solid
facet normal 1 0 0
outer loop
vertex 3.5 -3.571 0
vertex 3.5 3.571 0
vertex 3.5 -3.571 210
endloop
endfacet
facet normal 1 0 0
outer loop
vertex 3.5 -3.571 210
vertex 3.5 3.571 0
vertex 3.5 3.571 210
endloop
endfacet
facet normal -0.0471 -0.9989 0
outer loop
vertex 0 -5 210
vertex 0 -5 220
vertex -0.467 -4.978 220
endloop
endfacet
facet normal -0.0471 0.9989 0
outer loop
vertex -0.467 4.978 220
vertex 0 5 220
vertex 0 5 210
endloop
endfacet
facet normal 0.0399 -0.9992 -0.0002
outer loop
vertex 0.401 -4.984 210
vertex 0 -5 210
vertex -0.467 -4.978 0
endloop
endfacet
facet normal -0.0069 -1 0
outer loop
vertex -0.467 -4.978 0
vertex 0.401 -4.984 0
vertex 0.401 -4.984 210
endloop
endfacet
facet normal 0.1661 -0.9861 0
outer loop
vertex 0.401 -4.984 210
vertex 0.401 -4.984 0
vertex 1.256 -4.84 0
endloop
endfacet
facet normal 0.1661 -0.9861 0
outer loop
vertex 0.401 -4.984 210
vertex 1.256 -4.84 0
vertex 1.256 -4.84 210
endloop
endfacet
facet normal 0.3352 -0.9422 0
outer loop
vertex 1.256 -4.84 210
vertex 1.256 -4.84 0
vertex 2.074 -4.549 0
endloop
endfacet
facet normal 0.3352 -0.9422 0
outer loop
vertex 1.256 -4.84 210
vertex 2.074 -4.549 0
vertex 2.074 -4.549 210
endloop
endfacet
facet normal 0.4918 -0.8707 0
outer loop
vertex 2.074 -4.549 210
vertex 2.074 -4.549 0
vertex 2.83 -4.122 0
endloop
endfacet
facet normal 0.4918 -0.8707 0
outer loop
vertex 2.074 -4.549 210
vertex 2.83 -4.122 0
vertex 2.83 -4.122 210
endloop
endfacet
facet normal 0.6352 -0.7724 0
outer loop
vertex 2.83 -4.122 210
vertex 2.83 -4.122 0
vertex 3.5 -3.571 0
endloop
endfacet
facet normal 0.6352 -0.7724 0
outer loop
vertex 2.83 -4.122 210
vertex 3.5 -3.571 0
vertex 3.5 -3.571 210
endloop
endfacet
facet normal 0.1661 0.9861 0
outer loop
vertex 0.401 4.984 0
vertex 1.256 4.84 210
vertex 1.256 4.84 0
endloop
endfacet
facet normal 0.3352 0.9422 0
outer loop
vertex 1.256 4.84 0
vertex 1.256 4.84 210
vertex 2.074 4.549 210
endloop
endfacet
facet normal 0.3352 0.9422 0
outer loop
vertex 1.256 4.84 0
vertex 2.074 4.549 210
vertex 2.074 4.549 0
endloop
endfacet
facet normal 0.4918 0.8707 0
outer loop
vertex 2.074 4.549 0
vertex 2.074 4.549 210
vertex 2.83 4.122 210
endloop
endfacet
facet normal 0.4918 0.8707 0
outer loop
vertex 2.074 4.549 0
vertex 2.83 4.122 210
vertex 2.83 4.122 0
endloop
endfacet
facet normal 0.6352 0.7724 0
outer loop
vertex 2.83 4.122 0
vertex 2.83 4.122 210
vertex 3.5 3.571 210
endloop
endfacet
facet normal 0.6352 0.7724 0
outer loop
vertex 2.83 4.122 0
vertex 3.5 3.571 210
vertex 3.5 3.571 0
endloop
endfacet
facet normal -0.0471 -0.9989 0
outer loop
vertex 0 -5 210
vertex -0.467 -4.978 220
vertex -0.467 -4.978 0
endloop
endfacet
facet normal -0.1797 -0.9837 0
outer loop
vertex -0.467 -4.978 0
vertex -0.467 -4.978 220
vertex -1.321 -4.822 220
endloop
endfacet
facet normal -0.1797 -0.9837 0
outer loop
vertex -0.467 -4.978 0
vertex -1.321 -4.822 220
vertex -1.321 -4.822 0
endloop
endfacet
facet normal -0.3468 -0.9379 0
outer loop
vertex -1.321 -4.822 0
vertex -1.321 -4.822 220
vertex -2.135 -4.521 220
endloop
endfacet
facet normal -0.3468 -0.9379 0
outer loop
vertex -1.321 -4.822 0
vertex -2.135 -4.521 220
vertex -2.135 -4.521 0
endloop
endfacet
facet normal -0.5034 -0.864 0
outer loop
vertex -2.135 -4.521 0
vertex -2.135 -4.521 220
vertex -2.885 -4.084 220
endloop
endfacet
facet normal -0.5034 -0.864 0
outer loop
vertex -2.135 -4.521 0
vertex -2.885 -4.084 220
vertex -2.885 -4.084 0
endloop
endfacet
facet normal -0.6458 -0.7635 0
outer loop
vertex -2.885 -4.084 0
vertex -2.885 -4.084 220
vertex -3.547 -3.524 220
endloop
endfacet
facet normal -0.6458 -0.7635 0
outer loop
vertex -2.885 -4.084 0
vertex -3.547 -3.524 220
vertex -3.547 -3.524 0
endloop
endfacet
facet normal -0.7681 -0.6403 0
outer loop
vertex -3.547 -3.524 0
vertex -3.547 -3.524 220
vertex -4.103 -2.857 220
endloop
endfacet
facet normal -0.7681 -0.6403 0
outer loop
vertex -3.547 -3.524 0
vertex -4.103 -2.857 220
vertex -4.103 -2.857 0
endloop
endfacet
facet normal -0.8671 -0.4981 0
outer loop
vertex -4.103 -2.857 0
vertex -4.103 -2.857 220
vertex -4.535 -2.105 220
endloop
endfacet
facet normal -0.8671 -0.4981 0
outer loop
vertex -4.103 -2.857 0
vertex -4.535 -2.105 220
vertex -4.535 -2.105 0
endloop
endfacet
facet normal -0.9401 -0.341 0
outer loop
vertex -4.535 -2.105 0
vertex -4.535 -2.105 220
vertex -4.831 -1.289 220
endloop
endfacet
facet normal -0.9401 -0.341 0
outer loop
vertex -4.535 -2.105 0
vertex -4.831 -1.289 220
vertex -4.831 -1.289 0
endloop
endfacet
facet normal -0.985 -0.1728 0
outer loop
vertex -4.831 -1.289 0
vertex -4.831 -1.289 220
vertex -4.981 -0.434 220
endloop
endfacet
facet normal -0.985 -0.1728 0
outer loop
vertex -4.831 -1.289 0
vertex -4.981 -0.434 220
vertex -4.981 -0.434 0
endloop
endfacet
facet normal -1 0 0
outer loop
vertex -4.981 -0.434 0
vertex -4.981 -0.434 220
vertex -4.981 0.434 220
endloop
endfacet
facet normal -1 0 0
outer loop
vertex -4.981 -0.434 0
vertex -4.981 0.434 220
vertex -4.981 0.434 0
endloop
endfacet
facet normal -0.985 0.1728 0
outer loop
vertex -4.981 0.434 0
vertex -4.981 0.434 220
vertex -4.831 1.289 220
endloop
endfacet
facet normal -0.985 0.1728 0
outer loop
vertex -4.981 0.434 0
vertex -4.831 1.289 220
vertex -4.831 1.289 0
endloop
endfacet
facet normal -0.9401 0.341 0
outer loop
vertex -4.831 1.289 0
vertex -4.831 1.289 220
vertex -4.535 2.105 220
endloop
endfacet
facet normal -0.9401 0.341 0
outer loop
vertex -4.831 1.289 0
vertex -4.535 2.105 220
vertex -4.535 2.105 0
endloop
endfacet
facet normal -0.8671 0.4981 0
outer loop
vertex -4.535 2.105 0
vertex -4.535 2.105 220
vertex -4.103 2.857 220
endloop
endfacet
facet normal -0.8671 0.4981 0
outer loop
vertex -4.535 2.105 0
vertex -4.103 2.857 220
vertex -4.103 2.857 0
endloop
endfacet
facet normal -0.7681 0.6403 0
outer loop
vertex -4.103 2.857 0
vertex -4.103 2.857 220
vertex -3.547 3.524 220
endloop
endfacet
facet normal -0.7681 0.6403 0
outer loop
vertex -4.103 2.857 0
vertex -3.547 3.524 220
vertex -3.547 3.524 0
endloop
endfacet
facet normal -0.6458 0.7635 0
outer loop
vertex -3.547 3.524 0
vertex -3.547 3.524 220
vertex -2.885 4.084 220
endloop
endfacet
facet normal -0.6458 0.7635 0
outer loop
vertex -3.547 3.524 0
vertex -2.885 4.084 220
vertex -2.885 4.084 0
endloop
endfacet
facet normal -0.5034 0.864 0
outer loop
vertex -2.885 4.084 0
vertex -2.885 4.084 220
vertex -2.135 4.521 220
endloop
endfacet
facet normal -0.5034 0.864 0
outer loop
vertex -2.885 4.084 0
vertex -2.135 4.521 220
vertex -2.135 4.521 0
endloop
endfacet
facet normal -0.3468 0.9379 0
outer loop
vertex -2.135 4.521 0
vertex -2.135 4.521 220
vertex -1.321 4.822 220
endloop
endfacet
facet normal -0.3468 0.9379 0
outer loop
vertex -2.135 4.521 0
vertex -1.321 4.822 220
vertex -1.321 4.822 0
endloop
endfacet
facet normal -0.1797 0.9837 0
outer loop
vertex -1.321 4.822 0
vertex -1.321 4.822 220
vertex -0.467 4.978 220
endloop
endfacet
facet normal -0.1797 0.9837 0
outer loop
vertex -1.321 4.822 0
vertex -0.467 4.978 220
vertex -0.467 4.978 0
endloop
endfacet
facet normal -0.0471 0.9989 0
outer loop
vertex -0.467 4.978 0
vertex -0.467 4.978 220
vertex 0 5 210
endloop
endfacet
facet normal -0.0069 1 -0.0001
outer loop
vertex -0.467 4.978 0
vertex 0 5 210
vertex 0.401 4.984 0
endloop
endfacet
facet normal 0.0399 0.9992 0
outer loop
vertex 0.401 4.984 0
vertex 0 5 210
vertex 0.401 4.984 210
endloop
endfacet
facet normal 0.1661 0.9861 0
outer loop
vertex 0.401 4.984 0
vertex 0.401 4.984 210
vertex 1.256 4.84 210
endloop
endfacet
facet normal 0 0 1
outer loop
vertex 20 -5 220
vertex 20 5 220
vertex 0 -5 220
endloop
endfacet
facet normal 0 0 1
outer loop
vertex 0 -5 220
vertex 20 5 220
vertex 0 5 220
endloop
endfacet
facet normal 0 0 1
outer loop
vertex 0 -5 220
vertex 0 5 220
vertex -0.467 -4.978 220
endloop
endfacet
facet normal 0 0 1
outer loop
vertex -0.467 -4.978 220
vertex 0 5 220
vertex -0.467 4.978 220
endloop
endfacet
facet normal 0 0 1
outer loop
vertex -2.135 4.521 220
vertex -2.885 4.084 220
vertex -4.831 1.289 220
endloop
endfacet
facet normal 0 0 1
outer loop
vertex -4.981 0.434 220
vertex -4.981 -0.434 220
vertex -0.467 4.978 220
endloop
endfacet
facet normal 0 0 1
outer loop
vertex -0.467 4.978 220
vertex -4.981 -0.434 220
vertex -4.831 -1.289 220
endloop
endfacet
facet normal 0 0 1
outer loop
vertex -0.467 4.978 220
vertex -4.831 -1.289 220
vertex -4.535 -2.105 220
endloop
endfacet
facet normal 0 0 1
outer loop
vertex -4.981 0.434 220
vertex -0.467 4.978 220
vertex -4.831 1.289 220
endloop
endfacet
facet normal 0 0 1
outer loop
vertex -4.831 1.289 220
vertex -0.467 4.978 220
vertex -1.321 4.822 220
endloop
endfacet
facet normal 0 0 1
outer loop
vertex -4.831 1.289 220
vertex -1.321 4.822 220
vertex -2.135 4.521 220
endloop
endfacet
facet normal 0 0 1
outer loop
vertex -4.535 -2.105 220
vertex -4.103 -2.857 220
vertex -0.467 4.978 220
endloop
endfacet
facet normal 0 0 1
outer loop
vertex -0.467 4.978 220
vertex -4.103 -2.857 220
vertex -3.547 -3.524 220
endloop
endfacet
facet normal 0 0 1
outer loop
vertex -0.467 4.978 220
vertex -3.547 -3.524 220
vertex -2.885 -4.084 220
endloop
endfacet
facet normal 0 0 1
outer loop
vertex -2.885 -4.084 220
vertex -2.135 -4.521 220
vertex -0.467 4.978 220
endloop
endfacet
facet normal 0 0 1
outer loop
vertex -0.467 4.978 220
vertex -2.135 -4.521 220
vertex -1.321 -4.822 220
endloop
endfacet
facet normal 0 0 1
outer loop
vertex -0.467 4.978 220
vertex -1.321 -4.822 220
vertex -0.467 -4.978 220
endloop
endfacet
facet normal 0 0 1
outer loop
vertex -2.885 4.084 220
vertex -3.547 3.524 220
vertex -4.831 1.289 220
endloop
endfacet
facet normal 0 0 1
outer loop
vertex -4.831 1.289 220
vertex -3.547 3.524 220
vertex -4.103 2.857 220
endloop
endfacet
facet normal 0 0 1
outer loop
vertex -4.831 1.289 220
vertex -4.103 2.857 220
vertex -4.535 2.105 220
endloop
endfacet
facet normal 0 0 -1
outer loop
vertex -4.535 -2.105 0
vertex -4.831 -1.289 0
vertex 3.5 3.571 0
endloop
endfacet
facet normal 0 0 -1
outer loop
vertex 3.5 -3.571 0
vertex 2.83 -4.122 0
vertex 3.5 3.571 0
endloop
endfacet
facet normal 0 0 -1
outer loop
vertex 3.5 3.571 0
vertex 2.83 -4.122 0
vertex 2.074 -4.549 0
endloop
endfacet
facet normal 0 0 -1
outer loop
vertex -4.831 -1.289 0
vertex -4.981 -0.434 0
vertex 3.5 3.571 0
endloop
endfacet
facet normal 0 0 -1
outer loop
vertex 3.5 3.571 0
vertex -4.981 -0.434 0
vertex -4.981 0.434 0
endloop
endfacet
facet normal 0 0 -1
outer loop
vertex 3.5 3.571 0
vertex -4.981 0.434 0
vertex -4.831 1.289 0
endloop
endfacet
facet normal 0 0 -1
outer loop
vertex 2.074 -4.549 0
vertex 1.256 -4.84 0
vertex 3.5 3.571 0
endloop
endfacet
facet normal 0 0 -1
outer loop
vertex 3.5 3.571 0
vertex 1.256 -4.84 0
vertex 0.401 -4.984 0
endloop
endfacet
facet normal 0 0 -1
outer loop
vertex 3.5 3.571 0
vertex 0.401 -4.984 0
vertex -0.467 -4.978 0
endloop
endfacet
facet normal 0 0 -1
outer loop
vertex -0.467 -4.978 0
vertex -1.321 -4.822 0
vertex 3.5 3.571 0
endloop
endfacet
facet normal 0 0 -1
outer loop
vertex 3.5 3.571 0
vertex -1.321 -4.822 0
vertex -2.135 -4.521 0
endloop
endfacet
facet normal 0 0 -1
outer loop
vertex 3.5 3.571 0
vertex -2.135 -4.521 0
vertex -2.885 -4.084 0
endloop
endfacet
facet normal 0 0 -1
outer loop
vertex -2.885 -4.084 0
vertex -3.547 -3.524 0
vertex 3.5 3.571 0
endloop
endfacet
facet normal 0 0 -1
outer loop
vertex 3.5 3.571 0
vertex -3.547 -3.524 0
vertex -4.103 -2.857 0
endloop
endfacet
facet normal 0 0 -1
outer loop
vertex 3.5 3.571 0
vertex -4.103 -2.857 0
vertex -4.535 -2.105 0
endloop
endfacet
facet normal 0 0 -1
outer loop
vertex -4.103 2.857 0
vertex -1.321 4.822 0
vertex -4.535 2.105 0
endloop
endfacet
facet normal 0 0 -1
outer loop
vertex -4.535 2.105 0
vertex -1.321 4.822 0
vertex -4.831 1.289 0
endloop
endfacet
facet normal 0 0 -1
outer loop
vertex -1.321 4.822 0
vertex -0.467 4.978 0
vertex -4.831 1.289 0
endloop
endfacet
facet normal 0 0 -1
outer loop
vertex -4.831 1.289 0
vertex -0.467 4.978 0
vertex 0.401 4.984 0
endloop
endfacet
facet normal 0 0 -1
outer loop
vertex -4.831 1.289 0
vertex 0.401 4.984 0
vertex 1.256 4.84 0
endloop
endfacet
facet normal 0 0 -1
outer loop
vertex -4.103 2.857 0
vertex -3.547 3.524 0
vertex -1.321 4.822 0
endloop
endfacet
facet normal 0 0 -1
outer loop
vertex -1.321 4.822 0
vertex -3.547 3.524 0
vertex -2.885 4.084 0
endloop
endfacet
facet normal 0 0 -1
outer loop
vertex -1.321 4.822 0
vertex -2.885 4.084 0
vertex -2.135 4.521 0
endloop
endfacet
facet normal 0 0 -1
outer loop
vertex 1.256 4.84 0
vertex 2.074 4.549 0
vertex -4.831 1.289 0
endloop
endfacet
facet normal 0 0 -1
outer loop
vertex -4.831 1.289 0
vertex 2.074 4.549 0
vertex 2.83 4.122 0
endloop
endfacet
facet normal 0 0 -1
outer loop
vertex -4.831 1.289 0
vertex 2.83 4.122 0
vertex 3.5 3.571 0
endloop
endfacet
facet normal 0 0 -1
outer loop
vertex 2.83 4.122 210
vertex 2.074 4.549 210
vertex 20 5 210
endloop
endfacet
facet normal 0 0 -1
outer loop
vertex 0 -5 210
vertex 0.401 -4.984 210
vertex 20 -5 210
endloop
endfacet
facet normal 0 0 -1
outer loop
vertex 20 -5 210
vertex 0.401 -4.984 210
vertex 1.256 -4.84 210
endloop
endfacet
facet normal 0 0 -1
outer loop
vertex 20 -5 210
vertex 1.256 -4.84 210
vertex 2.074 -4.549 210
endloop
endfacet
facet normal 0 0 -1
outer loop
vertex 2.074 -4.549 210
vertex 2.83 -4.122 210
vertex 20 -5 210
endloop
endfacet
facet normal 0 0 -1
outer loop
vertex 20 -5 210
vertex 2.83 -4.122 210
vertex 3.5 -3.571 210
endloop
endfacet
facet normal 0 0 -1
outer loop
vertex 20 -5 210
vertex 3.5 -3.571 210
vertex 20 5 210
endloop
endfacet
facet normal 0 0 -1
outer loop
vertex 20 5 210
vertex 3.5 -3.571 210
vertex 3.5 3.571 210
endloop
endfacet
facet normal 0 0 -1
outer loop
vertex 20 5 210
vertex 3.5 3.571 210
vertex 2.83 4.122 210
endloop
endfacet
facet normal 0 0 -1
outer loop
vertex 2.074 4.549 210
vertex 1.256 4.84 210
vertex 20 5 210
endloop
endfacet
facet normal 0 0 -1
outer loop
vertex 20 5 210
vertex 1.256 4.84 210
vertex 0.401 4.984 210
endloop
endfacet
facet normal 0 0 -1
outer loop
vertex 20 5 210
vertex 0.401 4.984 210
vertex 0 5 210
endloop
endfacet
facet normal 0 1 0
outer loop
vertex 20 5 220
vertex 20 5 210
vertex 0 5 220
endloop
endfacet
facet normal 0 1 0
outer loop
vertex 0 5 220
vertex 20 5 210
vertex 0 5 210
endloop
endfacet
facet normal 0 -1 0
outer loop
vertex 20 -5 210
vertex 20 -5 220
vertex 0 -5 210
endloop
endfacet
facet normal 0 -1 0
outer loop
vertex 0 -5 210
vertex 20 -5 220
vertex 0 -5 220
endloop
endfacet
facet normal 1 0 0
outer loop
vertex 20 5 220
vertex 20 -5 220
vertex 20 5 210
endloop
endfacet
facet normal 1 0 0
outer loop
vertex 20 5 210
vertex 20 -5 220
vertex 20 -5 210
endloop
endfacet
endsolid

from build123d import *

# Parameters (mm, degrees)
RESSALTO_EXTRUS_O1_DEPTH = 220
ESBO_O2_W                = 10
ESBO_O2_H                = 10
RESSALTO_EXTRUS_O2_DEPTH = 20


with BuildPart() as part:
    # Esboço1 → Ressalto-extrusão1 (new body)
    with BuildSketch(Plane.XY):
        with BuildLine():
            ThreePointArc((3.5, 3.570714214), (-5, 0), (3.5, -3.570714214))
            Line((3.5, -3.570714214), (3.5, 3.570714214))
        make_face()
    extrude(amount=RESSALTO_EXTRUS_O1_DEPTH)

    # Esboço2 → Ressalto-extrusão2 (add)
    with BuildSketch(Plane(origin=(0, 0, 0), x_dir=(0, 0, -1), z_dir=(1, 0, 0))):
        with Locations((-215, 0)):
            Rectangle(ESBO_O2_W, ESBO_O2_H)
    extrude(amount=RESSALTO_EXTRUS_O2_DEPTH)


solid = part.part
